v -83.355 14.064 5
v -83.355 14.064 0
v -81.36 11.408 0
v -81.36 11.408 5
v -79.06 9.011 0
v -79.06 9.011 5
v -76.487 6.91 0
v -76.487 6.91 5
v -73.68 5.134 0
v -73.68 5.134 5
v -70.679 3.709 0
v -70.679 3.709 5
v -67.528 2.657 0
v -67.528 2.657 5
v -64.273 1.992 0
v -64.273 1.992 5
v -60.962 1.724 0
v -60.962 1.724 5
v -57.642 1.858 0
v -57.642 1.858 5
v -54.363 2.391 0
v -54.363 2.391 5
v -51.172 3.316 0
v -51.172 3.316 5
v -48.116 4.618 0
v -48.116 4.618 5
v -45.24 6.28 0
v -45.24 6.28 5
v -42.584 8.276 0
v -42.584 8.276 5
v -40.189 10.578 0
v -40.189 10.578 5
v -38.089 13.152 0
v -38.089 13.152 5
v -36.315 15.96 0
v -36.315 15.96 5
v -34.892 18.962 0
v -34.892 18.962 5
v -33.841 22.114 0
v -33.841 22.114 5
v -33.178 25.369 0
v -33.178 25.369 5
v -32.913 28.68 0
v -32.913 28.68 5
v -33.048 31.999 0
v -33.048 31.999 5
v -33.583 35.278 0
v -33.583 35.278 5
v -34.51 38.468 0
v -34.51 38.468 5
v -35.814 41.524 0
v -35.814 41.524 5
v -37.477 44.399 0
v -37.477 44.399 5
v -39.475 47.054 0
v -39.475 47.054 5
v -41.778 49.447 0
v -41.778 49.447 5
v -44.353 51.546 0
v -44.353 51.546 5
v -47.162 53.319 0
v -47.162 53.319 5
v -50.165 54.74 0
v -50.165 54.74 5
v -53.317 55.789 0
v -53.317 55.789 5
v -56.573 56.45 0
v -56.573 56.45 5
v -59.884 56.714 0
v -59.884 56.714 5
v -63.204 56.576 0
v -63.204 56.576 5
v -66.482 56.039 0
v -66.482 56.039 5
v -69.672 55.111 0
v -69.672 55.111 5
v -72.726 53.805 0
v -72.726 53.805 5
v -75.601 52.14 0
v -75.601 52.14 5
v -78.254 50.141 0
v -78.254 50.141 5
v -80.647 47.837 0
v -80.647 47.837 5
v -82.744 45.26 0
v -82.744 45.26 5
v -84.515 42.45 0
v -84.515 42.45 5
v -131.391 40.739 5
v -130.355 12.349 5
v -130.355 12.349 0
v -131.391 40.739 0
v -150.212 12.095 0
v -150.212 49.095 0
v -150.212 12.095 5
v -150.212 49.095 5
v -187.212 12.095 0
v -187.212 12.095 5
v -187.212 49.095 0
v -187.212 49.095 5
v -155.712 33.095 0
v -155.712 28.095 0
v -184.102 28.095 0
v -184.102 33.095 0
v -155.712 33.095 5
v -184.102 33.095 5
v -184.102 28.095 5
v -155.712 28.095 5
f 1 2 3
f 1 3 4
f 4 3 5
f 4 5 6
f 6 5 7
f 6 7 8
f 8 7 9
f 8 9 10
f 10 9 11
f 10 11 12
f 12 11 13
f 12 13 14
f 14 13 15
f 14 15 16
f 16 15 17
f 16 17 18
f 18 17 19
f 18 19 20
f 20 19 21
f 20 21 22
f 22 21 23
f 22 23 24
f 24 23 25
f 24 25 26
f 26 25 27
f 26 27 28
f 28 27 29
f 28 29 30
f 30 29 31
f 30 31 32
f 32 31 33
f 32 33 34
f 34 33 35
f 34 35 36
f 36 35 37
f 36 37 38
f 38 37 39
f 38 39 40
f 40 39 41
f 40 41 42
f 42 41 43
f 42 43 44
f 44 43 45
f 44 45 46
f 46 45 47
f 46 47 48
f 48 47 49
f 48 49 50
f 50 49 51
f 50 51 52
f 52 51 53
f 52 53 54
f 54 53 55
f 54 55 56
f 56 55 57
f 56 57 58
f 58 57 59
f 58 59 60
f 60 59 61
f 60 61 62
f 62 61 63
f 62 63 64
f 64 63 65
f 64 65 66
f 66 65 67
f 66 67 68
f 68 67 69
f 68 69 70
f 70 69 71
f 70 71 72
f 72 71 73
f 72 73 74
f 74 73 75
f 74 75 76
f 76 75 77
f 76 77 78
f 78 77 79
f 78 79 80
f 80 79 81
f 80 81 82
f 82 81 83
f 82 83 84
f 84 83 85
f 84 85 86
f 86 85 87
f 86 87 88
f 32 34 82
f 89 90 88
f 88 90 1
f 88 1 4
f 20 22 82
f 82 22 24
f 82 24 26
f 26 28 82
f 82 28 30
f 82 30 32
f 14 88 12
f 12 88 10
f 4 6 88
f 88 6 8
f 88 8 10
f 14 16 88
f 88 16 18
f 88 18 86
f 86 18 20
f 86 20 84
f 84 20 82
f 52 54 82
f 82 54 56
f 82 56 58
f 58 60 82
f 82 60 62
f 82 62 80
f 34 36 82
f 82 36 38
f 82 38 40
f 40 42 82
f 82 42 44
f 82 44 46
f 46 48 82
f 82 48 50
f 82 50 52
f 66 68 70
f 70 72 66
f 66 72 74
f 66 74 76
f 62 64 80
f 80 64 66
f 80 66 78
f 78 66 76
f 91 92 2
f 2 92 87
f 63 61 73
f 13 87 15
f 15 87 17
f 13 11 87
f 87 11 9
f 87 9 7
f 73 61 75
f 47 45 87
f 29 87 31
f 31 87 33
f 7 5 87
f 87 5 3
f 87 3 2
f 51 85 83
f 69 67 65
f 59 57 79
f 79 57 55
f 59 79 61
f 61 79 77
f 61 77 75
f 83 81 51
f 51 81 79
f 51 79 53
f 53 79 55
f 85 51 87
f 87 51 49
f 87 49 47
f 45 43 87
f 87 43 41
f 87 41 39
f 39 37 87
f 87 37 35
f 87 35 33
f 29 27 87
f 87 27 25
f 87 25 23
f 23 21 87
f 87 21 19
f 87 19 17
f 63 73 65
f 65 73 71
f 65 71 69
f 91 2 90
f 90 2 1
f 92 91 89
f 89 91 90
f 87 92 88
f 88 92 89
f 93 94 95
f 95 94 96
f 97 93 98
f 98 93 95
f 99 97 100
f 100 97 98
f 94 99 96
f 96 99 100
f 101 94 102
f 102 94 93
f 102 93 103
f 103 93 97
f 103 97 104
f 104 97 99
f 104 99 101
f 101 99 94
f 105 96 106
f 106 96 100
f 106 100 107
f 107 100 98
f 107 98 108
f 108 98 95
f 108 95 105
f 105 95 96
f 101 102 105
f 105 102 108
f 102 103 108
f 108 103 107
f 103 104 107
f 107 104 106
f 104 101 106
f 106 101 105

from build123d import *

# Parameters (mm, degrees)
ESQUISSE1_R        = 27.5
BOSS_EXTRU_1_DEPTH = 5
BOSS_EXTRU_2_START = -5
ESQUISSE2_W        = 37
ESQUISSE2_H        = 37
ESQUISSE2_W_2      = 28.39008226
ESQUISSE2_H_2      = 5
BOSS_EXTRU_2_DEPTH = 5


with BuildPart() as part:
    # Esquisse1 → Boss.-Extru.1 (new body)
    with BuildSketch(Plane.XY):
        with Locations((-60.40730743, 29.21875)):
            Circle(ESQUISSE1_R)
    extrude(amount=BOSS_EXTRU_1_DEPTH)

    # Esquisse2 → Boss.-Extru.2 (add)
    # profile 1 of 2: a face of its own
    with BuildSketch(Plane.XY.offset(5).offset(BOSS_EXTRU_2_START)):
        with BuildLine():
            Line((-83.35490173, 14.064281489), (-130.35490173, 12.348969386))
            Line((-130.35490173, 12.348969386), (-131.391026234, 40.739051645))
            Line((-131.391026234, 40.739051645), (-84.515157408, 42.449833457))
            ThreePointArc((-84.515157408, 42.449833457), (-32.930251562, 30.34187102), (-83.35490173, 14.064281489))
        make_face()
    # profile 2 of 2: a face of its own
    with BuildSketch(Plane.XY.offset(5).offset(BOSS_EXTRU_2_START)):
        with Locations((-168.711759769, 30.595460467)):
            Rectangle(ESQUISSE2_W, ESQUISSE2_H)
        with Locations((-169.906800899, 30.595460467)):
            Rectangle(ESQUISSE2_W_2, ESQUISSE2_H_2, mode=Mode.SUBTRACT)
    extrude(amount=BOSS_EXTRU_2_DEPTH)


with BuildPart() as boss_extru_2_piece_1:
    # of the separate pieces the step leaves, piece 1, a body of its own (boss_extru_2_pieces)
    add(part.part.solids().sort_by_distance((-83.35490173, 14.064281489, 0))[0])


with BuildPart() as boss_extru_2_piece_2:
    # of the separate pieces the step leaves, piece 2, a body of its own (boss_extru_2_pieces)
    add(part.part.solids().sort_by_distance((-150.211759769, 12.095460467, 0))[0])


solid = Compound([boss_extru_2_piece_1.part, boss_extru_2_piece_2.part])
